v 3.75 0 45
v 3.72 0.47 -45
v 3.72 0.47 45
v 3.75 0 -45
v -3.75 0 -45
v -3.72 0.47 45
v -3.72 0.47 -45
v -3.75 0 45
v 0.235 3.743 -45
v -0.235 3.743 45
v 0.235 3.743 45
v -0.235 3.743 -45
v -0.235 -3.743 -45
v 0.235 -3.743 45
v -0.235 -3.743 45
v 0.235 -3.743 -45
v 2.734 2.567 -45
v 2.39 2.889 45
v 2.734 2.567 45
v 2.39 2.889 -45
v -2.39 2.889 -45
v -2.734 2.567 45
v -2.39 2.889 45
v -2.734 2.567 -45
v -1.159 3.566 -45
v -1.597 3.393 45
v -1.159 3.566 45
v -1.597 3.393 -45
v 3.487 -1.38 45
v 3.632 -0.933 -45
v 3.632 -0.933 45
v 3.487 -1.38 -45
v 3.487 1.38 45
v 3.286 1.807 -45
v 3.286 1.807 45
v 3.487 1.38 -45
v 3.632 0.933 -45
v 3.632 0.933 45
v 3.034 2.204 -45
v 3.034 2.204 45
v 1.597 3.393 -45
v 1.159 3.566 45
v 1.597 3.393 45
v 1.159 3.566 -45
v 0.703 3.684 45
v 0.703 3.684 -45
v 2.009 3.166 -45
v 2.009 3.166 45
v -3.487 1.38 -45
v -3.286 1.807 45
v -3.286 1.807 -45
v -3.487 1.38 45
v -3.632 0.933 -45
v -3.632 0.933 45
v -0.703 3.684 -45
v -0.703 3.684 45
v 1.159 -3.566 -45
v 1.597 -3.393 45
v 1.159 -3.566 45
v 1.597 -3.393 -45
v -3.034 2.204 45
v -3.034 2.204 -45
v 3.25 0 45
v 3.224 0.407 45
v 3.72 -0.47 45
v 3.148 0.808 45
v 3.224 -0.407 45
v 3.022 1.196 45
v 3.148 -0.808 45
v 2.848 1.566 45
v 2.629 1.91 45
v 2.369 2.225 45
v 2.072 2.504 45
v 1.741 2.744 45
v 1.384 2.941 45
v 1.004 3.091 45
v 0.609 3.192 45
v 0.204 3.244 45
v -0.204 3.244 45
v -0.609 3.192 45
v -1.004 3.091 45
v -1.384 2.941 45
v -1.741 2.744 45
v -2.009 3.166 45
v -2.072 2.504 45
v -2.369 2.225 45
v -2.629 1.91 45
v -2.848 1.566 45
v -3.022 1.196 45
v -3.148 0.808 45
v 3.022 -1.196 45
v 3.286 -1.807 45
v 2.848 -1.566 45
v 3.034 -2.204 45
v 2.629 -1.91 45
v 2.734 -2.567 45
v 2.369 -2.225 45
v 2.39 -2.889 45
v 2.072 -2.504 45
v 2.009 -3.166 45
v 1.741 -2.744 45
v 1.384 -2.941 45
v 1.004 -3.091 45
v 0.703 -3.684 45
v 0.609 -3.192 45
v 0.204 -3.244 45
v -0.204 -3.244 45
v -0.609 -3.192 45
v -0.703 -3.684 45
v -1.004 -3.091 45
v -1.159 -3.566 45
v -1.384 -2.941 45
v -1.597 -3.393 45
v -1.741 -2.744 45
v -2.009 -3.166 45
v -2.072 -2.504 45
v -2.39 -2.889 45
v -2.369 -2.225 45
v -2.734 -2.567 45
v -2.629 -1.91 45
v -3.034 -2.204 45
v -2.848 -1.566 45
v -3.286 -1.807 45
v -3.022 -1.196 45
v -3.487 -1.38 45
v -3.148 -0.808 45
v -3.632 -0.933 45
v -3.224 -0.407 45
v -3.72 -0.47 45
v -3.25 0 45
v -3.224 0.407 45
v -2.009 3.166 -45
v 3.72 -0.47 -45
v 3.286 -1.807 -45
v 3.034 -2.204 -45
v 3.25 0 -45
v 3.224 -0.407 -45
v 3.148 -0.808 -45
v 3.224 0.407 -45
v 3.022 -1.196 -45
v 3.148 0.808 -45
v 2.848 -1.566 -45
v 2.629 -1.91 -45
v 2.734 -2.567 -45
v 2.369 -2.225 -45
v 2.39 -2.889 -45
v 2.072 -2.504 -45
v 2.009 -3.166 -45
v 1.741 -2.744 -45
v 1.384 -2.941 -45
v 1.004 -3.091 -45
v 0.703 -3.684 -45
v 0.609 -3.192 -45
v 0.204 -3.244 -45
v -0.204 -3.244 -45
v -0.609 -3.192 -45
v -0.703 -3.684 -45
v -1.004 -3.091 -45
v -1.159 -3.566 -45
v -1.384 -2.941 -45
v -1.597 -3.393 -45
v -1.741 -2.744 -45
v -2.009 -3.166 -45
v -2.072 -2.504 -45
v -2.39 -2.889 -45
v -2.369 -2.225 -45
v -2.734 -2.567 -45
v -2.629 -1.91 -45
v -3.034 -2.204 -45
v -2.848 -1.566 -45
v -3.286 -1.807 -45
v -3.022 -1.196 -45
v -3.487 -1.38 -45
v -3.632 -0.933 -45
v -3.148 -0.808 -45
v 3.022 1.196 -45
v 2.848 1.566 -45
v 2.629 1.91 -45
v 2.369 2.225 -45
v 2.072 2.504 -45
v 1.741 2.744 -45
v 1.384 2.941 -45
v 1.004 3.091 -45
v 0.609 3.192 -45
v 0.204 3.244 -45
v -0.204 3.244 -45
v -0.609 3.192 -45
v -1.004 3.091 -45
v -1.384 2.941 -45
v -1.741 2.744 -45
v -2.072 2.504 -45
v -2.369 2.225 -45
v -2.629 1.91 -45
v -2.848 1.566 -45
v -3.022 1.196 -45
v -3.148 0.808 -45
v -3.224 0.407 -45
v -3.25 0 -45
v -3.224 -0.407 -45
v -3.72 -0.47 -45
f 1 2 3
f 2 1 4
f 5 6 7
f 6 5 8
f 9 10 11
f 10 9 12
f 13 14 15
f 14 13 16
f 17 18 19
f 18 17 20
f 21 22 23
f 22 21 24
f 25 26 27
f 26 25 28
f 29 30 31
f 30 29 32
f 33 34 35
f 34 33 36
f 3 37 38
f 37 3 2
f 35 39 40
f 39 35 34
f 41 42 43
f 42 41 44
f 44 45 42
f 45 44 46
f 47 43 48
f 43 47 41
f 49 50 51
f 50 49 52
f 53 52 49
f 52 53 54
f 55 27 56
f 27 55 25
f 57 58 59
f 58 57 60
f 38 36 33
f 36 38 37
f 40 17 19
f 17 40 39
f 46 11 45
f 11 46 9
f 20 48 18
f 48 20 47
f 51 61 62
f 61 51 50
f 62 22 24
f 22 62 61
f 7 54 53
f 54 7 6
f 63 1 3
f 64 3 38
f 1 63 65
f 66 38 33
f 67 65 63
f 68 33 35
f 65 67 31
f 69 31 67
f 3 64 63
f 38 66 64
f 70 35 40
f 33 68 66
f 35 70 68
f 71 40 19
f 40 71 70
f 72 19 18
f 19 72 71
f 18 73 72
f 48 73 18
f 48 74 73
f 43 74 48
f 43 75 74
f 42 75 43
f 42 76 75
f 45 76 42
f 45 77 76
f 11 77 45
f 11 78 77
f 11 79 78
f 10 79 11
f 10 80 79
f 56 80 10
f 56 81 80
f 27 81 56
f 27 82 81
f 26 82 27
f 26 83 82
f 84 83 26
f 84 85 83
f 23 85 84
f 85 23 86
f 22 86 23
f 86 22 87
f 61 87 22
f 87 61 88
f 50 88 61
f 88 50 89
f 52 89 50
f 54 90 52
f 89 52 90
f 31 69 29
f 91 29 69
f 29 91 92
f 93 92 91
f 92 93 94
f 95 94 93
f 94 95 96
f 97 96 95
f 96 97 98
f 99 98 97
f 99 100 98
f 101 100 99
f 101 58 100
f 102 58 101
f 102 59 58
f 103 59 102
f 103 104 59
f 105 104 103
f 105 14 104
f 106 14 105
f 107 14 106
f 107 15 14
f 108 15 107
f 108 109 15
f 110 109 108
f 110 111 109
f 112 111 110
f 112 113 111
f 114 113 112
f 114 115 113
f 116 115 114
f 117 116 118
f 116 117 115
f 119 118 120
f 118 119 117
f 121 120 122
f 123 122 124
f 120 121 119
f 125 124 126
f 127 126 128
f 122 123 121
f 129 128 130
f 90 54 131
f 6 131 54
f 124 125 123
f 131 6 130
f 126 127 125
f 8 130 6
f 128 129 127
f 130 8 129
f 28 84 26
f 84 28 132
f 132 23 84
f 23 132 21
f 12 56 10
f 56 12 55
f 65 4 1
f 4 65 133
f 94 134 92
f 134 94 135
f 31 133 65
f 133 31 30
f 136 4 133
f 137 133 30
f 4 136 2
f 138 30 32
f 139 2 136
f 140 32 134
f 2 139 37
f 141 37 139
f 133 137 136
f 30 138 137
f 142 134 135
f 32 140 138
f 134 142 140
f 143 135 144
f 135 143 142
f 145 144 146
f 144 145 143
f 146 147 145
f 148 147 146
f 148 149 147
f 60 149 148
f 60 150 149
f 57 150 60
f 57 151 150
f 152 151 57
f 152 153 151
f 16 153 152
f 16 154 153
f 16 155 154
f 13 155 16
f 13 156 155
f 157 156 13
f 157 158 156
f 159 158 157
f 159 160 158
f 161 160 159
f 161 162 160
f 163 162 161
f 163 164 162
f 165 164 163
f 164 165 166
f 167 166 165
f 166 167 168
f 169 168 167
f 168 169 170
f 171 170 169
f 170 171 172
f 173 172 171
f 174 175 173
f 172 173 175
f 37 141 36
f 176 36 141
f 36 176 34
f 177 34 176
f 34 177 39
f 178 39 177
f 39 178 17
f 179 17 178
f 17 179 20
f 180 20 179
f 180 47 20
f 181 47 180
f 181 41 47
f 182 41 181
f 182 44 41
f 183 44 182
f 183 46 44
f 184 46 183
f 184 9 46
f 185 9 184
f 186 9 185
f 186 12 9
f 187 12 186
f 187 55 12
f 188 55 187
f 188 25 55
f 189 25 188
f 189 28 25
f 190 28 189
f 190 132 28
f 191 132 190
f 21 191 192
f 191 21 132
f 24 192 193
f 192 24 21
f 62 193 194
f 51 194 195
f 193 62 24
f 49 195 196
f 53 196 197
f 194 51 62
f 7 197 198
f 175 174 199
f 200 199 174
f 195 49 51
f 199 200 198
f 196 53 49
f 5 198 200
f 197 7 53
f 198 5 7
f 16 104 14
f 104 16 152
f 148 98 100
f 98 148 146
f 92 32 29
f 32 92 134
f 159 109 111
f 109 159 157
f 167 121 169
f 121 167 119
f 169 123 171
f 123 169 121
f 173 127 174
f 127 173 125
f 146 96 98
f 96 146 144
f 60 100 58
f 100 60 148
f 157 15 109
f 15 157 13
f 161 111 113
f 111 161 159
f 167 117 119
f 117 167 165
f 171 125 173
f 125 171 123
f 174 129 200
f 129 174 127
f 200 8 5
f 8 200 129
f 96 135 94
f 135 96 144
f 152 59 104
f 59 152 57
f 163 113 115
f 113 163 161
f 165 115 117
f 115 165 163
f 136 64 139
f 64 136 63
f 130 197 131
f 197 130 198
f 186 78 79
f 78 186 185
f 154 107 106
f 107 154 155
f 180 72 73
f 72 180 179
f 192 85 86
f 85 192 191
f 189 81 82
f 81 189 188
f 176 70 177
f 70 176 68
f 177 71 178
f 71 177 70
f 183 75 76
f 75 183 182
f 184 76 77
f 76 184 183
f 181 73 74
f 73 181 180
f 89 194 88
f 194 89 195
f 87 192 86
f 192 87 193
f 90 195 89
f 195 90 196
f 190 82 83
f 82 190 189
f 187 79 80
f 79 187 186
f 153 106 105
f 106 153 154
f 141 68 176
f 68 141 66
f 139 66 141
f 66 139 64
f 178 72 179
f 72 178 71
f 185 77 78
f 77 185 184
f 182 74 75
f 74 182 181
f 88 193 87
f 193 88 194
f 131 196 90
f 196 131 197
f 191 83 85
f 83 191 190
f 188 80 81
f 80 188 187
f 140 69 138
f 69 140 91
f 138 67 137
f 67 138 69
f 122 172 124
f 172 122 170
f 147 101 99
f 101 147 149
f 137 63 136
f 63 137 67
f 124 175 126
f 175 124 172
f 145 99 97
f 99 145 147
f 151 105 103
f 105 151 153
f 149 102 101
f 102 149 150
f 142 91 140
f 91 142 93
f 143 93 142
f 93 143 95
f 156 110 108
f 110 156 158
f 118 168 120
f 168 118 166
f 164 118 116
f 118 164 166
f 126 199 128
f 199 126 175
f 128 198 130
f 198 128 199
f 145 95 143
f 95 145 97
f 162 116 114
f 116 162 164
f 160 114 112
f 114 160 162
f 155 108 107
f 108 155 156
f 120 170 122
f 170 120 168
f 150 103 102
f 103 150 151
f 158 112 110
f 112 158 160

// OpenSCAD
$fn = 50;


difference() {
	union() {
		translate(v = [0, 0, -45.0000000000]) {
			cylinder(h = 90, r = 3.7500000000);
		}
	}
	union() {
		translate(v = [0, 0, -100.0000000000]) {
			cylinder(h = 200, r = 3.2500000000);
		}
	}
}
